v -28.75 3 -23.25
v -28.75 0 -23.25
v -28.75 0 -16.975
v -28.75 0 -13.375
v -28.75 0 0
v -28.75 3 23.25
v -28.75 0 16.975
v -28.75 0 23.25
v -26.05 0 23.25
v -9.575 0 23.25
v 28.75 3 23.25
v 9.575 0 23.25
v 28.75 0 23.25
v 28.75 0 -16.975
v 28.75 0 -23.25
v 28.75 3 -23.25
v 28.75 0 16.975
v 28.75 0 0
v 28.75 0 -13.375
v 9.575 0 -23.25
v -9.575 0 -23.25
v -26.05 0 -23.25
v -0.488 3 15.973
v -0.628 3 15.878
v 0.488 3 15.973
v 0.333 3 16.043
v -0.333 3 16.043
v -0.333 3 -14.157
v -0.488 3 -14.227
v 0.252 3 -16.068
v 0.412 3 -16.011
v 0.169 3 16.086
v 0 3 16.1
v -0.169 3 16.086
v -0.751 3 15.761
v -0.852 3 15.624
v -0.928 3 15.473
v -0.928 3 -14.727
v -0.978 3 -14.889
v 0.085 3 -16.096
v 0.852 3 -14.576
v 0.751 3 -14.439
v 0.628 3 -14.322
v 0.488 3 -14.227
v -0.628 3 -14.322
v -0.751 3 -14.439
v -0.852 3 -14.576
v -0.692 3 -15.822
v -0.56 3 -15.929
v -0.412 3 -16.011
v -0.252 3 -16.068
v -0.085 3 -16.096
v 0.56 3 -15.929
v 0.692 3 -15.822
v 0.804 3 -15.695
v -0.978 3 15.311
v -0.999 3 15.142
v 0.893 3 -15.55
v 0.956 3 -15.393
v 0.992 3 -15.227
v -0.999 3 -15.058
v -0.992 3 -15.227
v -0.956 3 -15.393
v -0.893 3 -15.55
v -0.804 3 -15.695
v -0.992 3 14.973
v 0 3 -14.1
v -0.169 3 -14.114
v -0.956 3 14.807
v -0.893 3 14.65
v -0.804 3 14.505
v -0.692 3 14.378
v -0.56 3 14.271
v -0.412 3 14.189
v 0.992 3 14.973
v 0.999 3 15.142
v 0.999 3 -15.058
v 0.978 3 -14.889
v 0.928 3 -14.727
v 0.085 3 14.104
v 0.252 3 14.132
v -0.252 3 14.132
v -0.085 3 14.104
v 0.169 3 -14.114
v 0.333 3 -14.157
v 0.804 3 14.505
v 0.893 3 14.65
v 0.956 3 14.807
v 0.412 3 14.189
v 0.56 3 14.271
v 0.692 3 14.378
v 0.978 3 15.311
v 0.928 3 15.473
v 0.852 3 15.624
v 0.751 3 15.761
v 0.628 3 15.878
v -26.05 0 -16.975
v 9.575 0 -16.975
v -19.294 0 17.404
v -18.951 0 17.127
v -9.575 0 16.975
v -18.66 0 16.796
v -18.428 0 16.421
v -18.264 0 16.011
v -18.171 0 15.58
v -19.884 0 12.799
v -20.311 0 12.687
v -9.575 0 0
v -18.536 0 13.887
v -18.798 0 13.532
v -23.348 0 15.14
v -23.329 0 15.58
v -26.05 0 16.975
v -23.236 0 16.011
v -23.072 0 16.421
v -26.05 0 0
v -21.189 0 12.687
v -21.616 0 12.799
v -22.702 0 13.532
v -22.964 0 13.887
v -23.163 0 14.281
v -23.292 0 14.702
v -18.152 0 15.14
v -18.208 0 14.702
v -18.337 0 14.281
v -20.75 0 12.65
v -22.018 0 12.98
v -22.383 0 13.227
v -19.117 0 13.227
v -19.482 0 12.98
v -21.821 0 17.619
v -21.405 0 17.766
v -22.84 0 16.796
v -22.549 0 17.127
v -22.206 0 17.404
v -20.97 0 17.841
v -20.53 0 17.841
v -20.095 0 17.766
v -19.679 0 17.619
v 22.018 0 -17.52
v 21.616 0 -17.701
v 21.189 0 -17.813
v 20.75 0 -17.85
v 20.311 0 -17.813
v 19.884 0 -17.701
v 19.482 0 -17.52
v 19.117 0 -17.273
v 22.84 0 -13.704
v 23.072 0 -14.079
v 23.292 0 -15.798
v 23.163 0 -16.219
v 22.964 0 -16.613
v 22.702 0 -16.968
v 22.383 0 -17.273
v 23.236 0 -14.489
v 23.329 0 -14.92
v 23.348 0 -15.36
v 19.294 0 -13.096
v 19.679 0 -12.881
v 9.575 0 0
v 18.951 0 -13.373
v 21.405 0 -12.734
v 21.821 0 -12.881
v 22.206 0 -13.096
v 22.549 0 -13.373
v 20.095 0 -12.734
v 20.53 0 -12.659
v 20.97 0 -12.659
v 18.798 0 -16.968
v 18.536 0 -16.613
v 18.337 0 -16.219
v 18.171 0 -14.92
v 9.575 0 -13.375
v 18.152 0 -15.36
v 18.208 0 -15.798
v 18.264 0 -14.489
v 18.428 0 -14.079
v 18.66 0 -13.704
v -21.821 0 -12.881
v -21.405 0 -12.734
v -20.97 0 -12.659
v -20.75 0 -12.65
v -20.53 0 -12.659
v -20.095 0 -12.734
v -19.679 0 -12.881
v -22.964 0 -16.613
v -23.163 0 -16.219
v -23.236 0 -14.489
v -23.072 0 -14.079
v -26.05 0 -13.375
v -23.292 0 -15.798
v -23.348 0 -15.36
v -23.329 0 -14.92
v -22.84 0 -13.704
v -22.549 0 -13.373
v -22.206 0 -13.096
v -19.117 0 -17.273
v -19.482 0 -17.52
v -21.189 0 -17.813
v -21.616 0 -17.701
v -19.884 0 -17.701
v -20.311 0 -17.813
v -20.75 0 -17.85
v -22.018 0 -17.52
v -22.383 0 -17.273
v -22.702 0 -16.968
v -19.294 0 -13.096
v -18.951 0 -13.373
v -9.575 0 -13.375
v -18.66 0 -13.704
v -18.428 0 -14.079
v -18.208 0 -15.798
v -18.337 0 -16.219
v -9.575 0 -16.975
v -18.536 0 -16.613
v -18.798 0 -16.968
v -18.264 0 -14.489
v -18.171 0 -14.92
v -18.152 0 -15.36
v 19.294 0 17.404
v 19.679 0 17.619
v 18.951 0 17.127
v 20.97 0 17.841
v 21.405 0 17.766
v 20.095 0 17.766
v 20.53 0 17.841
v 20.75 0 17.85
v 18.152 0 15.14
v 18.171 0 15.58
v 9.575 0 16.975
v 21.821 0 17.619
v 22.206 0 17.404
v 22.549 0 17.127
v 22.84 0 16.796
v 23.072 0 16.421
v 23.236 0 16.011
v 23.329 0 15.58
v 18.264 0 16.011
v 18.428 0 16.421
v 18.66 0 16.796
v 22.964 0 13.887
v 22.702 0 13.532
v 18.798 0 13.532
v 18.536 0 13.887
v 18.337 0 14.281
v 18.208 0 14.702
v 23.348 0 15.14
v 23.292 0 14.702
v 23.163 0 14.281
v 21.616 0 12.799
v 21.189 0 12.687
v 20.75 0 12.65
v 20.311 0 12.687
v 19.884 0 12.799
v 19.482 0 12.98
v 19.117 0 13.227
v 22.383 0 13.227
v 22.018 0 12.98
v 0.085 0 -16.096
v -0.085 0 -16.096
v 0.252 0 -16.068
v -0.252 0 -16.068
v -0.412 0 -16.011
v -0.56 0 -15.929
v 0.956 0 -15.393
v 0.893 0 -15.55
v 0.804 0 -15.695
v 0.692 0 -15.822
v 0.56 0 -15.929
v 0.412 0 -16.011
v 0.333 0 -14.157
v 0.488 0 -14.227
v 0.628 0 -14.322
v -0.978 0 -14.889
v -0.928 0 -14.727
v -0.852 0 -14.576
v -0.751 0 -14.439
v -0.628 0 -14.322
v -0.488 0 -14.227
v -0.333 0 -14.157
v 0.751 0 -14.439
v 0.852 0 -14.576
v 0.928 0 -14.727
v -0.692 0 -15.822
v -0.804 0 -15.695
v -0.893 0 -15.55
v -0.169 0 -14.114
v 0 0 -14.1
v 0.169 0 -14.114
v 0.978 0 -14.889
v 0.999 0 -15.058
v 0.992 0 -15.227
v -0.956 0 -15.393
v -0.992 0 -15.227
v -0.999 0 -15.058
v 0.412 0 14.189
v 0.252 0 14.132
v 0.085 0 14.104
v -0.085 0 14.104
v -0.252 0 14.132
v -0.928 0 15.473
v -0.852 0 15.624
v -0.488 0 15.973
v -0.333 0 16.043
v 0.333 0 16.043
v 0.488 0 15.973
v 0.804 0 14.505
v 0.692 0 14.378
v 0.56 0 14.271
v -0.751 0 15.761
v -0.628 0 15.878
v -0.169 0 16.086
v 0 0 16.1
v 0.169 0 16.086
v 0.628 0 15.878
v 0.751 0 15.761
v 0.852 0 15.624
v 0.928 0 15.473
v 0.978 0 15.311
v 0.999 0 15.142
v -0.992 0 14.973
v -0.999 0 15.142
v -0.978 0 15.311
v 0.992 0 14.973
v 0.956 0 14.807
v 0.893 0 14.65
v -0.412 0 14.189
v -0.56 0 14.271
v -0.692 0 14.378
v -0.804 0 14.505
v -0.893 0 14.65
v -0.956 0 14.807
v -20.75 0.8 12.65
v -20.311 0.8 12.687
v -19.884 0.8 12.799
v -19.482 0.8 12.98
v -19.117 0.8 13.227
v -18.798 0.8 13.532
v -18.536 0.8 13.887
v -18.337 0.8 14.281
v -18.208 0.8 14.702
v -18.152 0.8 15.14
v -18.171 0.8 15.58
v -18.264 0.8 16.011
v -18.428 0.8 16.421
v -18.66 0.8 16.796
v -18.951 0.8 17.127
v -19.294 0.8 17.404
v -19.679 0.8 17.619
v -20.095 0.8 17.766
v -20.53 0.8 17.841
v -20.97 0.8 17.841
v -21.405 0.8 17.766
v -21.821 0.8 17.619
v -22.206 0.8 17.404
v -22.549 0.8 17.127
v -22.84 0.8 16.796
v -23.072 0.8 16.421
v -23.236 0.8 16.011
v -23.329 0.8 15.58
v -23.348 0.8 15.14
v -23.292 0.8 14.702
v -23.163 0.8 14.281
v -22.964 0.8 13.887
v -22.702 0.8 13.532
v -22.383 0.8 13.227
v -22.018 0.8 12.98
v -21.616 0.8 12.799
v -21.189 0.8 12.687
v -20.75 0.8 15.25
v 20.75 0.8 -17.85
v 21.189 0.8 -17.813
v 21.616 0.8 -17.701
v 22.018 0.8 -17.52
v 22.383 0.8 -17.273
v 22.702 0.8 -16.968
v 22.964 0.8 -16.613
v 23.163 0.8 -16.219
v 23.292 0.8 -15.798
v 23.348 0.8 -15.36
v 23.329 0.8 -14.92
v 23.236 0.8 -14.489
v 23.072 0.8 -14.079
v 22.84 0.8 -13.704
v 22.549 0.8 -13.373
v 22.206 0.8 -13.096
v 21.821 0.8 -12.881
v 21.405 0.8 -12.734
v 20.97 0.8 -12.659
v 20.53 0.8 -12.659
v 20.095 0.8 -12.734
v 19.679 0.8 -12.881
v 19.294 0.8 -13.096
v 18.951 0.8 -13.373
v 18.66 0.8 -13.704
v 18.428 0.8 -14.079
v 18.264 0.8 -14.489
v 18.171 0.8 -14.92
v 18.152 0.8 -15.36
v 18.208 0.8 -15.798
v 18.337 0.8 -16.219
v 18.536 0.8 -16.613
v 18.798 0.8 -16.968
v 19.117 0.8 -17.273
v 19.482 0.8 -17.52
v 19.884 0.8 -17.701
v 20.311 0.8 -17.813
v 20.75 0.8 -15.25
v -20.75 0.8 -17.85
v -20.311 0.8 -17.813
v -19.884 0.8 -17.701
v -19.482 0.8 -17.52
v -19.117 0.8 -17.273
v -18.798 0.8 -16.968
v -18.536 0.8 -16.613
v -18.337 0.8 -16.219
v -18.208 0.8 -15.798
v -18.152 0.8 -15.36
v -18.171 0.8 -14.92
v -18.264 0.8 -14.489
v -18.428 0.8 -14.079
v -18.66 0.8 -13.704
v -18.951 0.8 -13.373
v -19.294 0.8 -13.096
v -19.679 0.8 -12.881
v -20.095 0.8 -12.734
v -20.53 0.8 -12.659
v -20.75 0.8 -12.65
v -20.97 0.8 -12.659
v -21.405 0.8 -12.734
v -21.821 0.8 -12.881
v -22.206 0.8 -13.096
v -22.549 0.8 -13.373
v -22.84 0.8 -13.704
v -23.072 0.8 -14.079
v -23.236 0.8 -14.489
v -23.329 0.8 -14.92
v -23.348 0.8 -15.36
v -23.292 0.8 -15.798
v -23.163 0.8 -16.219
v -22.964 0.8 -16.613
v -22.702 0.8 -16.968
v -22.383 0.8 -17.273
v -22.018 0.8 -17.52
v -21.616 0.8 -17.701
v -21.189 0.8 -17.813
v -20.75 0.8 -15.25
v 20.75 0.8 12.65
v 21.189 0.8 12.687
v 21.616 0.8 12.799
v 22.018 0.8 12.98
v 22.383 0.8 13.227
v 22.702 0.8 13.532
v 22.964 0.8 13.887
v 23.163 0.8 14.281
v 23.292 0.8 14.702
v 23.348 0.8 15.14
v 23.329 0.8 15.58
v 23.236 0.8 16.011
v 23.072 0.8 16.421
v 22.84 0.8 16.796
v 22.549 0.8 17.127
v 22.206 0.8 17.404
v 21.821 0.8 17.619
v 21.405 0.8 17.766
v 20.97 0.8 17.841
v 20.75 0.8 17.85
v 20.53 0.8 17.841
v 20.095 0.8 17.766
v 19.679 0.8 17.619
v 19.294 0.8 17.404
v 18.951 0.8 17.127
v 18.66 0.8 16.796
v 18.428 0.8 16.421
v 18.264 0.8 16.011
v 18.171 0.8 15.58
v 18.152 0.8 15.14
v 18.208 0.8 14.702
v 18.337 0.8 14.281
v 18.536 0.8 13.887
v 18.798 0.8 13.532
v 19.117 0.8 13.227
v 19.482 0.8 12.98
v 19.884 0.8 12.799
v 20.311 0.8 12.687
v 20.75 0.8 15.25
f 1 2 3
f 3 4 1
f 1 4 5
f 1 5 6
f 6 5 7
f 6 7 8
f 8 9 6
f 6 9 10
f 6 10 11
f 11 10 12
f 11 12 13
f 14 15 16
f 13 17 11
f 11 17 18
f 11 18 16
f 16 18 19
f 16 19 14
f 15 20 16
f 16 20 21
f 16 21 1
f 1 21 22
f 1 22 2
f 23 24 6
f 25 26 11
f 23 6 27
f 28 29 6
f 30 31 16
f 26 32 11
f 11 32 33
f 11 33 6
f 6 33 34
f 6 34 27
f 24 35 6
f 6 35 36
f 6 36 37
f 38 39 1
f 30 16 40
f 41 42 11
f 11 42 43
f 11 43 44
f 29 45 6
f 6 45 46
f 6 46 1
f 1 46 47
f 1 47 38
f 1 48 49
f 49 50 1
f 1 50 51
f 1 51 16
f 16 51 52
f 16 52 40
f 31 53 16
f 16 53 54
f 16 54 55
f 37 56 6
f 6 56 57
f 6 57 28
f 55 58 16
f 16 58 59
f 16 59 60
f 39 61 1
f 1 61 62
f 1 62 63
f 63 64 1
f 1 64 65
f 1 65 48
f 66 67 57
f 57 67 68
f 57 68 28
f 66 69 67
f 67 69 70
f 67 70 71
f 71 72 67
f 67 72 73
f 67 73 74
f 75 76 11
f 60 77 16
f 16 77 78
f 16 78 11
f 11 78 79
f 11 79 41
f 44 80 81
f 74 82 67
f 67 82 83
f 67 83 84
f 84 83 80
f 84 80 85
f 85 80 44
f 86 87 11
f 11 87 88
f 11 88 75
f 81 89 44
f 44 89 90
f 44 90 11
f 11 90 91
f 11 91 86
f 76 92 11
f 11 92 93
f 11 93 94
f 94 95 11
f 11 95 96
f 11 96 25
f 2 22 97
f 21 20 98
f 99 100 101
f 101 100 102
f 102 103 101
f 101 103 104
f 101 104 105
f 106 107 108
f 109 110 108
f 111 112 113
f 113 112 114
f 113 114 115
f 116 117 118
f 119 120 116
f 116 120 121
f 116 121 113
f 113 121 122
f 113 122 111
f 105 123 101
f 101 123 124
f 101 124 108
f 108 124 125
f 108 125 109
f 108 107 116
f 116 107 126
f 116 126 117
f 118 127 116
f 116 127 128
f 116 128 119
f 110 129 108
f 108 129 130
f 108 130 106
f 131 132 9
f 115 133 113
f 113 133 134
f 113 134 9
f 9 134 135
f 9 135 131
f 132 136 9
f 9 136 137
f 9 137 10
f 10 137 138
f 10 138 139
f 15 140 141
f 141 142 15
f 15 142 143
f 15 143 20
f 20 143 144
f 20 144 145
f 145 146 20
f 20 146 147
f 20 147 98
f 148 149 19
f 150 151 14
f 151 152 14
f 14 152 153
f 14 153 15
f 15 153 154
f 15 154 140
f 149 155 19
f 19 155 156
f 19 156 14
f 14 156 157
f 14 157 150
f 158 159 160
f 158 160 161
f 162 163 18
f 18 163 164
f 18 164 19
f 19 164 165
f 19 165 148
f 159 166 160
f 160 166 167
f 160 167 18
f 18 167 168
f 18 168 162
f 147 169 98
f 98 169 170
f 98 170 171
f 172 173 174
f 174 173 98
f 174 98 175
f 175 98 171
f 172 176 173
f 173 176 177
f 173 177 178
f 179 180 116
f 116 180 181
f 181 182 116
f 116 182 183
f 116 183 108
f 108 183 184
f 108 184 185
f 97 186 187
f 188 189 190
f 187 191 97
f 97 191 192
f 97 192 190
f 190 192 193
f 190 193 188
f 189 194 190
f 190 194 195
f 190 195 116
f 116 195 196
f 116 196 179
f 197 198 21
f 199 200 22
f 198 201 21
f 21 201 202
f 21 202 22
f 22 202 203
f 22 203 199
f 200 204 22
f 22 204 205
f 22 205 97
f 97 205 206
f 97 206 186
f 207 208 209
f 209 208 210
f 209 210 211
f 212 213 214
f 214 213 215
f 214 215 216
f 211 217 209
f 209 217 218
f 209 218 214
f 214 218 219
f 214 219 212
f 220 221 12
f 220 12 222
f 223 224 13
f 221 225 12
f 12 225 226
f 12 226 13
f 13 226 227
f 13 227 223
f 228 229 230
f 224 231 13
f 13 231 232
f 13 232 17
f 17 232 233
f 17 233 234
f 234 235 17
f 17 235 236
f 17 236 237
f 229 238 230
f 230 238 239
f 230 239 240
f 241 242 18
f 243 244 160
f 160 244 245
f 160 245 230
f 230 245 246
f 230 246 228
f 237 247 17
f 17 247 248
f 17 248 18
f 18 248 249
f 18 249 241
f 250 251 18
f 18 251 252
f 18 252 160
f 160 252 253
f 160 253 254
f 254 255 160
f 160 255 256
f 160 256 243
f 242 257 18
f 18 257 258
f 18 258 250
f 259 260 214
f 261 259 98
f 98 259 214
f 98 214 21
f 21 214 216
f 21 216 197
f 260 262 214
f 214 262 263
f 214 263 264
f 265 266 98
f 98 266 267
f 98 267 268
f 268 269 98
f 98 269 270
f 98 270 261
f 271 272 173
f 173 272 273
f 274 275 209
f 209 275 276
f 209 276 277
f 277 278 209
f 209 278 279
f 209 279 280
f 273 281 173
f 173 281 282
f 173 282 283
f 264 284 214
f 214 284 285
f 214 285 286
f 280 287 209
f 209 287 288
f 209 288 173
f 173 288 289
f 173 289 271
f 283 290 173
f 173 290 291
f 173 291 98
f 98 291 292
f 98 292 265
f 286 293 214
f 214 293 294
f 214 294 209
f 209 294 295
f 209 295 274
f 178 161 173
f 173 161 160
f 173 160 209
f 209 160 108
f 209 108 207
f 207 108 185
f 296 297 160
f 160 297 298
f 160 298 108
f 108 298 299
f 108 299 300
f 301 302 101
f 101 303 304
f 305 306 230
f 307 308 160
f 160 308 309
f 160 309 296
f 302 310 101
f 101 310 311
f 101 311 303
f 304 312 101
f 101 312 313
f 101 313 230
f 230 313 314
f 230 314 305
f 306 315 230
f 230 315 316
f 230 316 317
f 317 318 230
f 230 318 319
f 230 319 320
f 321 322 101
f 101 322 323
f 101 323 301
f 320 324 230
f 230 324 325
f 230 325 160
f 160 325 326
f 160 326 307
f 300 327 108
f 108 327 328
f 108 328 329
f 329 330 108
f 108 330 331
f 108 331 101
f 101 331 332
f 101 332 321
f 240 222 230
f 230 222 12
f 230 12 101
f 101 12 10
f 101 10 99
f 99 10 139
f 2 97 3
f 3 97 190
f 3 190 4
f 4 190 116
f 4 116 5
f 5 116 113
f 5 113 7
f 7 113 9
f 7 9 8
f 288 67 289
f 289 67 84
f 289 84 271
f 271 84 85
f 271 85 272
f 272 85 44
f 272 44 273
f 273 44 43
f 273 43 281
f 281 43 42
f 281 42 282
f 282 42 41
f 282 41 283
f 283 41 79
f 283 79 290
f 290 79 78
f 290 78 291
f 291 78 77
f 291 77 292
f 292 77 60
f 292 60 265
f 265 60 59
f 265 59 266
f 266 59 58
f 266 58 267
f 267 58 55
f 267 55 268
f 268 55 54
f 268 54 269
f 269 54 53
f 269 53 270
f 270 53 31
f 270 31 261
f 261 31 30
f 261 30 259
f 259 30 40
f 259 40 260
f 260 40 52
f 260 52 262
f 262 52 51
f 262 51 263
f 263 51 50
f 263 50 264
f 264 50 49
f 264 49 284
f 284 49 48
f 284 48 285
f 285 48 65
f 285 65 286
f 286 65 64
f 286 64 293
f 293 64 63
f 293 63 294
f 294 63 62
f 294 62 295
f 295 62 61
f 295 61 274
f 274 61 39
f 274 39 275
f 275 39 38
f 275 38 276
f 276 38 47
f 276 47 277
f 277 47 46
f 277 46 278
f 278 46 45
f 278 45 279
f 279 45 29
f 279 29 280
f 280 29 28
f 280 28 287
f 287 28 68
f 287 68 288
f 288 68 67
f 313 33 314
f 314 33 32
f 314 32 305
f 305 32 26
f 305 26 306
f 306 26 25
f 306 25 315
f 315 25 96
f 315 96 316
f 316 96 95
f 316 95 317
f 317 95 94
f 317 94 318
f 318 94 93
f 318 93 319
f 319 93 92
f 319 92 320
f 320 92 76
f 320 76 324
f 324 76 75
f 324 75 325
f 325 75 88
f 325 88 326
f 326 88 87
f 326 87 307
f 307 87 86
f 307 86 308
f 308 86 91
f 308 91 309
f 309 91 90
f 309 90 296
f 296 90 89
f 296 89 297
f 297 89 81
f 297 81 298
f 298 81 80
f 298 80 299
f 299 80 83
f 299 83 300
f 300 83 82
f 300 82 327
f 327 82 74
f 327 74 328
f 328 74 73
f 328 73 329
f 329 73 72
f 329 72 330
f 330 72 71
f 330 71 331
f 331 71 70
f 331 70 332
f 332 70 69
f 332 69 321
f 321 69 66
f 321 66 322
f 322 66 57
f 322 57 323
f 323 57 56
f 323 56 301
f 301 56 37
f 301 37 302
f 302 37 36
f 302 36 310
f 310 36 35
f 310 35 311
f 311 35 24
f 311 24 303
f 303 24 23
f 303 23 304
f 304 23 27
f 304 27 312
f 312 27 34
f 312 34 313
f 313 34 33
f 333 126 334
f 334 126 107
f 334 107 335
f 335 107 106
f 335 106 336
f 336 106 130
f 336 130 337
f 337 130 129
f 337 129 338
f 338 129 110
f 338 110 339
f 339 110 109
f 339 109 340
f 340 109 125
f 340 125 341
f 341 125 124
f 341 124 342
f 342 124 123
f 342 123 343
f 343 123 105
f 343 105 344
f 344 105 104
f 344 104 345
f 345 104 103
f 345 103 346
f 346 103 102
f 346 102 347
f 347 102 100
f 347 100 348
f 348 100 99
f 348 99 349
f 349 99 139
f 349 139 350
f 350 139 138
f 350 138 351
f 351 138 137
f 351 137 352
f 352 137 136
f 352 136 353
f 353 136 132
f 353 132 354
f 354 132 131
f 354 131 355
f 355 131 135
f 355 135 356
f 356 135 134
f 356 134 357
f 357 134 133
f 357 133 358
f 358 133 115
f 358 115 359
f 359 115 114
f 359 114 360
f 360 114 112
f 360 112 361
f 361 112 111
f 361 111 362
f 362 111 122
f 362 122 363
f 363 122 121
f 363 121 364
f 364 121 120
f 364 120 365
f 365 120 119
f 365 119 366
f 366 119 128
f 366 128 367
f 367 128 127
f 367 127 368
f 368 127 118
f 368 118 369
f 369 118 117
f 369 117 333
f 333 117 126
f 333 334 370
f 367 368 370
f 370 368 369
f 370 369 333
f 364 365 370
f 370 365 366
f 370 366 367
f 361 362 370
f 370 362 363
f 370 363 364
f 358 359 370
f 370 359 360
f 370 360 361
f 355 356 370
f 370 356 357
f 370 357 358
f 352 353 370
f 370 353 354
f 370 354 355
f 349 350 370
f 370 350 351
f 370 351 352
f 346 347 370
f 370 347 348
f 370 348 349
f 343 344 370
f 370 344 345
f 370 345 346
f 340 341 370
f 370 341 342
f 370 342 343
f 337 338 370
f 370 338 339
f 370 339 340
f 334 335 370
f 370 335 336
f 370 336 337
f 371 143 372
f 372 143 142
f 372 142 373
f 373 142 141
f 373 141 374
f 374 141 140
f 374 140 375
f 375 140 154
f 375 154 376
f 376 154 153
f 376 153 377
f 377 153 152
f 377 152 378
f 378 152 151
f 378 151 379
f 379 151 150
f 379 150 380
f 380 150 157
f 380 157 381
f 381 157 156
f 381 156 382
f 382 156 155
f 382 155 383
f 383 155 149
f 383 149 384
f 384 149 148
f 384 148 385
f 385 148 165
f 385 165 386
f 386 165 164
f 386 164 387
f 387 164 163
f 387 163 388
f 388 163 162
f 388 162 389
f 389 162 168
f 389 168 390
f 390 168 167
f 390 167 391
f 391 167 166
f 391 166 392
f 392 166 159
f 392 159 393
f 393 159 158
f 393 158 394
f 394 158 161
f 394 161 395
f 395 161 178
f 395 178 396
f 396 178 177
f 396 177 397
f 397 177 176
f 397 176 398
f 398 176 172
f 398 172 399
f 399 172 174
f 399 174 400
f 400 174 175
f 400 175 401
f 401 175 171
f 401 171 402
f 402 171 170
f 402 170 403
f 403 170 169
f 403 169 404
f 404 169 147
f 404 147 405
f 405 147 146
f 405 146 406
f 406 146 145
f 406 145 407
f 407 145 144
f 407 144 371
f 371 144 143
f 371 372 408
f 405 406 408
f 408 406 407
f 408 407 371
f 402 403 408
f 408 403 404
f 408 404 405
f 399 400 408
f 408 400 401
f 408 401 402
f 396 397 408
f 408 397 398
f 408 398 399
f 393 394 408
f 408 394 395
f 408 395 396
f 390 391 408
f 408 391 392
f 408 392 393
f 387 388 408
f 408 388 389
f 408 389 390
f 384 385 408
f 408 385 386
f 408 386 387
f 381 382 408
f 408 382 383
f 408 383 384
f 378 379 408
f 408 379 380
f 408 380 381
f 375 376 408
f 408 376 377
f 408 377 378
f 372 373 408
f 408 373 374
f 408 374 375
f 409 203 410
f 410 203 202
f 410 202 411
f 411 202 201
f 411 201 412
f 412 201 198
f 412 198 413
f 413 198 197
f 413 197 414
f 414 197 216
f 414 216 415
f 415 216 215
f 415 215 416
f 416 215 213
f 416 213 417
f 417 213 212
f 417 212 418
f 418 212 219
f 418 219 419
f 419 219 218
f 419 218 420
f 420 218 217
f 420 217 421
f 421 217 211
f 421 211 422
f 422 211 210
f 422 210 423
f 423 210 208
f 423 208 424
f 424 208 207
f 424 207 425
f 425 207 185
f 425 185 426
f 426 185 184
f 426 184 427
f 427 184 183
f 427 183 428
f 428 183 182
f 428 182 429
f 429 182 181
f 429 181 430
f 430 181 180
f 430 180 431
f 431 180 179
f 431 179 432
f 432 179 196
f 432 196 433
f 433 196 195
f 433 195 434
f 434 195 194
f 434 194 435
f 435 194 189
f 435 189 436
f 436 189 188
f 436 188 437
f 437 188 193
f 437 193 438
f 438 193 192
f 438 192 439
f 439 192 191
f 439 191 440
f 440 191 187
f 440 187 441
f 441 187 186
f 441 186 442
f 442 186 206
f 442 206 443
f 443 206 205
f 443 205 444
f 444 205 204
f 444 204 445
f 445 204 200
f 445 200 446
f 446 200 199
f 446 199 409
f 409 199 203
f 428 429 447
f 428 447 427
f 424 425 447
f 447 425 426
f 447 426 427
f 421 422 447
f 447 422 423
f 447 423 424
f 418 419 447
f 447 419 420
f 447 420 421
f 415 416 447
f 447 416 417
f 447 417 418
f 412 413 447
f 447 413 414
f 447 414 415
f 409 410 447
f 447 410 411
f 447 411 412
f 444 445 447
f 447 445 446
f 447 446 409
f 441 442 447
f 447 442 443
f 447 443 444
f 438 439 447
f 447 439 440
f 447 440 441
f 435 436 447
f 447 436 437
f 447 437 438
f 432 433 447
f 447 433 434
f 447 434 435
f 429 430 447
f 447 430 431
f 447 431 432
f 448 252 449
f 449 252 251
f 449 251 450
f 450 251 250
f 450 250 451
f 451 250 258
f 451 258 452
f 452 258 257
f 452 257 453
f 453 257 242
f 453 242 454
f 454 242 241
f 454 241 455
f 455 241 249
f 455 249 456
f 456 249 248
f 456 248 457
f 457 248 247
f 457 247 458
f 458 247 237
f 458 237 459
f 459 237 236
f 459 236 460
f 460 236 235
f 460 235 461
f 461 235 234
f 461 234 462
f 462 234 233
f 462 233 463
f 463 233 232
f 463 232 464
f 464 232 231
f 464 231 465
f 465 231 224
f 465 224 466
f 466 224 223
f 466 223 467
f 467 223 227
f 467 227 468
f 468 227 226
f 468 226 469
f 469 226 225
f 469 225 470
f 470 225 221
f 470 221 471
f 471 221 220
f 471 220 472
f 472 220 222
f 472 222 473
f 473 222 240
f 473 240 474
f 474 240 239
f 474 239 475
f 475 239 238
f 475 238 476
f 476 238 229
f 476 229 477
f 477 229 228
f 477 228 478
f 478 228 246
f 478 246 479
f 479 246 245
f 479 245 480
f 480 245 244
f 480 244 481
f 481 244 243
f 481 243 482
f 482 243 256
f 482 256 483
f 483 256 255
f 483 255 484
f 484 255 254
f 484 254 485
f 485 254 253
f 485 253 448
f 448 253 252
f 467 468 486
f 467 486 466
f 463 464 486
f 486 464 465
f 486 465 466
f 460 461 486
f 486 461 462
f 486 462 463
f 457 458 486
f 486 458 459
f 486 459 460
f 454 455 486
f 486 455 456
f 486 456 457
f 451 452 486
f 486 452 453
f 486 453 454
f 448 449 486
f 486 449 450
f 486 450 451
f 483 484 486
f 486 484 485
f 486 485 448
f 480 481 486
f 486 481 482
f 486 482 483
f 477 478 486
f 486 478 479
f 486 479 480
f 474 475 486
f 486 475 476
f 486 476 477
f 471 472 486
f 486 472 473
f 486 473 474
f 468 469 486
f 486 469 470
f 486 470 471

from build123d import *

# Parameters (mm, degrees)
SKETCH_1_W          = 57.5
SKETCH_1_H          = 46.5
EXTRUDE_1_DEPTH     = 3
SKETCH_2_R          = 1
CUT_EXTRUDE_1_DEPTH = 38.096158831
SKETCH_4_R          = 2.6
CUT_EXTRUDE_2_DEPTH = 0.8


with BuildPart() as part:
    # 草图1 → 凸台-拉伸1 (new body)
    with BuildSketch(Plane(origin=(0, 0, 0), x_dir=(1, 0, 0), z_dir=(0, 1, 0))):
        Rectangle(SKETCH_1_W, SKETCH_1_H)
    extrude(amount=EXTRUDE_1_DEPTH)

    # 草图2 → 切除-拉伸1 (cut, through all)
    with BuildSketch(Plane(origin=(0, 3, 0), x_dir=(1, 0, 0), z_dir=(0, 1, 0))):
        with Locations(Location((0, -15.1, 0), (0, 0, 270))):
            Circle(SKETCH_2_R)
        with Locations(Location((0, 15.1, 0), (0, 0, 270))):
            Circle(SKETCH_2_R)
    extrude(amount=-CUT_EXTRUDE_1_DEPTH, mode=Mode.SUBTRACT)

    # 草图4 → 切除-拉伸2 (cut)
    with BuildSketch(Plane.XZ):
        with Locations(Location((-20.75, 15.25, 0), (0, 0, 270))):
            Circle(SKETCH_4_R)
        with Locations(Location((20.75, 15.25, 0), (0, 0, 90))):
            Circle(SKETCH_4_R)
        with Locations(Location((-20.75, -15.25, 0), (0, 0, 90))):
            Circle(SKETCH_4_R)
        with Locations(Location((20.75, -15.25, 0), (0, 0, 270))):
            Circle(SKETCH_4_R)
    extrude(amount=-CUT_EXTRUDE_2_DEPTH, mode=Mode.SUBTRACT)


solid = part.part
